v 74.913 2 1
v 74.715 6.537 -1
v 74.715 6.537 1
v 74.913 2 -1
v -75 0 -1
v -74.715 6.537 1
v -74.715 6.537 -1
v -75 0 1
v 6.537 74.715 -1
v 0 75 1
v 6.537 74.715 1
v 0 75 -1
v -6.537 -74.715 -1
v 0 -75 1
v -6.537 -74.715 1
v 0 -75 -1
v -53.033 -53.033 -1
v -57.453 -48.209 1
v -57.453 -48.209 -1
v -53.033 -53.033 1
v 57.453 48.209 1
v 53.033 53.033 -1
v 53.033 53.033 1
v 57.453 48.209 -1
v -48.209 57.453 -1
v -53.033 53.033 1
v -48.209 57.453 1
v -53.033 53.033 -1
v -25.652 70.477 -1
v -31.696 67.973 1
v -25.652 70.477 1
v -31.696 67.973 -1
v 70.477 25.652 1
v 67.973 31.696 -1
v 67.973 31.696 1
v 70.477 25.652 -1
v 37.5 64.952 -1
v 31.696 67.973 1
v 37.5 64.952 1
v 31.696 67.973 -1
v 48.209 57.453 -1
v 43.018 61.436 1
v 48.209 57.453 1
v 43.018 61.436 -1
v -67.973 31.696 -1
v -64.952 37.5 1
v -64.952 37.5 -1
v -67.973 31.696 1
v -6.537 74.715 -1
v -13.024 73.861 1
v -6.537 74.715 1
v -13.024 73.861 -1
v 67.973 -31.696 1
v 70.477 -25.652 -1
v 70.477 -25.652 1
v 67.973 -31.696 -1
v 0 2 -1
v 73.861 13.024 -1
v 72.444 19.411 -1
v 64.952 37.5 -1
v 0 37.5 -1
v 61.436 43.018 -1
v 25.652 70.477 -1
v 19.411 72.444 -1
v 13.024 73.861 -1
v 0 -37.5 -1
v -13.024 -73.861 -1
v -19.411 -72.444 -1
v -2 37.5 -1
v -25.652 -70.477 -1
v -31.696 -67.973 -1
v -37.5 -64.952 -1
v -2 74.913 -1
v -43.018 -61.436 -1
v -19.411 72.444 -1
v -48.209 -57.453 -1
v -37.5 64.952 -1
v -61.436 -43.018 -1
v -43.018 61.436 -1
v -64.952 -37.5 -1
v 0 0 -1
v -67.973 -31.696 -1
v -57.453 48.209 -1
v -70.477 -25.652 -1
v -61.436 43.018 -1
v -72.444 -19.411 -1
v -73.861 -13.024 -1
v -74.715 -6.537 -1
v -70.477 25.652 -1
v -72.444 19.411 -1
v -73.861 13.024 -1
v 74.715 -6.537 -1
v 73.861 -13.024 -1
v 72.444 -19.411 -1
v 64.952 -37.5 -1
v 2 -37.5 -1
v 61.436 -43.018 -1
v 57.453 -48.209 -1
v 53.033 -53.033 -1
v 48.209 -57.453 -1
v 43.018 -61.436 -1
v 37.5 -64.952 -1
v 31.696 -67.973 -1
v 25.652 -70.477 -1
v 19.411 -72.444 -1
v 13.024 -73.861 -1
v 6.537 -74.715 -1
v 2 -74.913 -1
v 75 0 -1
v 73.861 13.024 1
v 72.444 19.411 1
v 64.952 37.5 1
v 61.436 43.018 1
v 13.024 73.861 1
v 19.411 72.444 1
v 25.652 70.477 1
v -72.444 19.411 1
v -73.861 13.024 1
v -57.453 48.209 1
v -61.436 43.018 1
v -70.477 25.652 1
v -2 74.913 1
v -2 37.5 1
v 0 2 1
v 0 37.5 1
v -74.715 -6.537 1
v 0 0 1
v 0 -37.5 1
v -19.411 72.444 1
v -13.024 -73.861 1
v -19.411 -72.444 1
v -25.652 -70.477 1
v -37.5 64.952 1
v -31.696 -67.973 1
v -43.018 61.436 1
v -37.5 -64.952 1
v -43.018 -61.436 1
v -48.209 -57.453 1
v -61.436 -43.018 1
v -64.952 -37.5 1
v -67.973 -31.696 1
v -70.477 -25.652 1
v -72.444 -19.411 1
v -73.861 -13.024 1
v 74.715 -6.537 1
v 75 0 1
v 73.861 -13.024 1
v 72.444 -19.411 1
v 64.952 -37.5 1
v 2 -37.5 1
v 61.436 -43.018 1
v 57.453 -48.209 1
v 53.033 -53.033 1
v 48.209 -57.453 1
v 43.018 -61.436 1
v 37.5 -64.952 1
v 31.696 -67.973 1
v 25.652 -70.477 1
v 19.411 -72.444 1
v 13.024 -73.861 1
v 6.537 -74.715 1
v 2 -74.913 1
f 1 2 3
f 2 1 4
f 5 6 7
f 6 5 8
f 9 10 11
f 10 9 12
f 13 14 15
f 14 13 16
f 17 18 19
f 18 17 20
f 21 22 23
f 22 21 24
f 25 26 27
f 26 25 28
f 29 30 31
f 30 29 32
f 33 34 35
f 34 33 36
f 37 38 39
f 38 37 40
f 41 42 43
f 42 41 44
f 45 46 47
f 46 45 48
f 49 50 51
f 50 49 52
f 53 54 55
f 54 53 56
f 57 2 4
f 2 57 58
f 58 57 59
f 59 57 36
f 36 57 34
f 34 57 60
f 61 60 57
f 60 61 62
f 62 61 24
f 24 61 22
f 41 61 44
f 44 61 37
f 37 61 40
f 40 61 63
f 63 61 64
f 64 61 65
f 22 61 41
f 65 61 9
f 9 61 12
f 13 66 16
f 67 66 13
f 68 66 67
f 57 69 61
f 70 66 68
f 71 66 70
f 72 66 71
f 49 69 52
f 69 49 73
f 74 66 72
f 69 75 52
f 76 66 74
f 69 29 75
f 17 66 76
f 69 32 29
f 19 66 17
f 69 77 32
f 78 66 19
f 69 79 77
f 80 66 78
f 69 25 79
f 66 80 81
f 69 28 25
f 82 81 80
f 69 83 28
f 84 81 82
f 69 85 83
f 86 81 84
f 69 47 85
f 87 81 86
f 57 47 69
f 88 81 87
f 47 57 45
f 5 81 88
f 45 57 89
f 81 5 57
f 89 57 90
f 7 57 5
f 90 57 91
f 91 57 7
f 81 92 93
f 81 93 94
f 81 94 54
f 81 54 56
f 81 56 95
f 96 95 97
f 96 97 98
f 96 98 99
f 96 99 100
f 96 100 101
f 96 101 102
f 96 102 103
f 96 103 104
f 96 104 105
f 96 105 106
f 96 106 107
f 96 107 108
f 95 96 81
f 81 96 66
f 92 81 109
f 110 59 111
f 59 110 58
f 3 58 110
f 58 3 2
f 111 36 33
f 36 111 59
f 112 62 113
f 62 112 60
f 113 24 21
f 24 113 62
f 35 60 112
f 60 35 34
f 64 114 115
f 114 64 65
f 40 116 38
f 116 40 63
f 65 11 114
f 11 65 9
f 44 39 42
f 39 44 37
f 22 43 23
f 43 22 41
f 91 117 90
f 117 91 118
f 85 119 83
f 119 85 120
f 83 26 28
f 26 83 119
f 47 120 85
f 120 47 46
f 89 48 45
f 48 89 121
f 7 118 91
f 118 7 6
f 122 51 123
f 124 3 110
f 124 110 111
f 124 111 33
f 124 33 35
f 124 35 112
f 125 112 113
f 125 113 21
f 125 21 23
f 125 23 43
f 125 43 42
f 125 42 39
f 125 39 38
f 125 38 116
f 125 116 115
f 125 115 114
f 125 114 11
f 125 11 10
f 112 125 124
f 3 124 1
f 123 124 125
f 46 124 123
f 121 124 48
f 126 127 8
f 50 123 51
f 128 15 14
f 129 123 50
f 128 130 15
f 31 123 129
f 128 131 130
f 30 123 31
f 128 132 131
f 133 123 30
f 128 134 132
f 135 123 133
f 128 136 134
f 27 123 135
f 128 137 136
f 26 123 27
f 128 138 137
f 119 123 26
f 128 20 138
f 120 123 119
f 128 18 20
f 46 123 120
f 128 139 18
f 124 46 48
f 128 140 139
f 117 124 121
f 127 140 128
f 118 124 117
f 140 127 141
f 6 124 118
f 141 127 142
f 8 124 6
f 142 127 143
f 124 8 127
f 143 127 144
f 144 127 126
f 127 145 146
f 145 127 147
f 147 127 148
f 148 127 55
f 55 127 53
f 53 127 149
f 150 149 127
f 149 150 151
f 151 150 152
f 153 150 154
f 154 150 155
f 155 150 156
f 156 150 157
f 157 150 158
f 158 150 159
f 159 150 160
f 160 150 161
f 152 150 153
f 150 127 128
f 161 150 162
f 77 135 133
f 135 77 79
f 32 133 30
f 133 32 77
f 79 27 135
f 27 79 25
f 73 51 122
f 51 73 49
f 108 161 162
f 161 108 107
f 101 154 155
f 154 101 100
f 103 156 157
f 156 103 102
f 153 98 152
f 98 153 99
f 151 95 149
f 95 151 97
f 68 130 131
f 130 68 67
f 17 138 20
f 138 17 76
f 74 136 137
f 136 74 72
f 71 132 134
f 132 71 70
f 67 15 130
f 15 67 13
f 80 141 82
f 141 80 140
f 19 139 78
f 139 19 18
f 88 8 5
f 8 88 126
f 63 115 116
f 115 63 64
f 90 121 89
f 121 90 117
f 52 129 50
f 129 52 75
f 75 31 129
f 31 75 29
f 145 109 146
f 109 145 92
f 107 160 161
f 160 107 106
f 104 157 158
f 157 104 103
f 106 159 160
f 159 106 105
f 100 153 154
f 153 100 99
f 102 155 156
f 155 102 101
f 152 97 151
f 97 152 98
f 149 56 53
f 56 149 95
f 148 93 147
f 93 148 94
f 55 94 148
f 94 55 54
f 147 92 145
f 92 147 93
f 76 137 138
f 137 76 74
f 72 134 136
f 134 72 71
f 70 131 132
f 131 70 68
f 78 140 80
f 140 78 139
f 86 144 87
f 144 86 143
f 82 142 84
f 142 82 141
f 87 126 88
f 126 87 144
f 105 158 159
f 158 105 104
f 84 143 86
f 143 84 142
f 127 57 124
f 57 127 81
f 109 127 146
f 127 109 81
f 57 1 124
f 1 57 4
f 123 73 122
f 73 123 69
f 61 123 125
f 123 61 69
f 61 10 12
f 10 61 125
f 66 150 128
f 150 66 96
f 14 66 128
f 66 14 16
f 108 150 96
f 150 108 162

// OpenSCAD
// CSG-modules.scad - Basic usage of modules, if, color, $fs/$fa

// Global resolution
$fs = 0.1;  // Don't generate smaller facets than 0.1 mm
$fa = 5;    // Don't generate larger angles than 5 degrees

difference(){
    union(){
    base();/*
        riser1();
        riser2();
            rotate([0,0,90]) riser1();
            rotate([0,0,270]) riser1();
            rotate([0,0,90]) riser2();
            rotate([0,0,270]) riser2();*/        
    }
    baseSlot();
    rotate([0,0,90]) translate([37.5,0,0]) baseSlot();
    rotate([0,0,270]) translate([37.5,0,0]) baseSlot();

}


//rotate([0,0,90]) translate([37.5,0,0]) baseASlot();

module base() {
    color("Blue") cylinder(h=2, r=75, center=true);
    }
    
module baseSlot() {
    color("Red") translate([0,0,-3]) cube([76, 2, 6]); 
    }
   
module riser1() {
    color("Yellow") translate([37.5,2,1]) cube([34,2,4]);
    }    
    
module riser2() {
    color("Green") translate([37.5,-2,1]) cube([34,2,4]);
    }
